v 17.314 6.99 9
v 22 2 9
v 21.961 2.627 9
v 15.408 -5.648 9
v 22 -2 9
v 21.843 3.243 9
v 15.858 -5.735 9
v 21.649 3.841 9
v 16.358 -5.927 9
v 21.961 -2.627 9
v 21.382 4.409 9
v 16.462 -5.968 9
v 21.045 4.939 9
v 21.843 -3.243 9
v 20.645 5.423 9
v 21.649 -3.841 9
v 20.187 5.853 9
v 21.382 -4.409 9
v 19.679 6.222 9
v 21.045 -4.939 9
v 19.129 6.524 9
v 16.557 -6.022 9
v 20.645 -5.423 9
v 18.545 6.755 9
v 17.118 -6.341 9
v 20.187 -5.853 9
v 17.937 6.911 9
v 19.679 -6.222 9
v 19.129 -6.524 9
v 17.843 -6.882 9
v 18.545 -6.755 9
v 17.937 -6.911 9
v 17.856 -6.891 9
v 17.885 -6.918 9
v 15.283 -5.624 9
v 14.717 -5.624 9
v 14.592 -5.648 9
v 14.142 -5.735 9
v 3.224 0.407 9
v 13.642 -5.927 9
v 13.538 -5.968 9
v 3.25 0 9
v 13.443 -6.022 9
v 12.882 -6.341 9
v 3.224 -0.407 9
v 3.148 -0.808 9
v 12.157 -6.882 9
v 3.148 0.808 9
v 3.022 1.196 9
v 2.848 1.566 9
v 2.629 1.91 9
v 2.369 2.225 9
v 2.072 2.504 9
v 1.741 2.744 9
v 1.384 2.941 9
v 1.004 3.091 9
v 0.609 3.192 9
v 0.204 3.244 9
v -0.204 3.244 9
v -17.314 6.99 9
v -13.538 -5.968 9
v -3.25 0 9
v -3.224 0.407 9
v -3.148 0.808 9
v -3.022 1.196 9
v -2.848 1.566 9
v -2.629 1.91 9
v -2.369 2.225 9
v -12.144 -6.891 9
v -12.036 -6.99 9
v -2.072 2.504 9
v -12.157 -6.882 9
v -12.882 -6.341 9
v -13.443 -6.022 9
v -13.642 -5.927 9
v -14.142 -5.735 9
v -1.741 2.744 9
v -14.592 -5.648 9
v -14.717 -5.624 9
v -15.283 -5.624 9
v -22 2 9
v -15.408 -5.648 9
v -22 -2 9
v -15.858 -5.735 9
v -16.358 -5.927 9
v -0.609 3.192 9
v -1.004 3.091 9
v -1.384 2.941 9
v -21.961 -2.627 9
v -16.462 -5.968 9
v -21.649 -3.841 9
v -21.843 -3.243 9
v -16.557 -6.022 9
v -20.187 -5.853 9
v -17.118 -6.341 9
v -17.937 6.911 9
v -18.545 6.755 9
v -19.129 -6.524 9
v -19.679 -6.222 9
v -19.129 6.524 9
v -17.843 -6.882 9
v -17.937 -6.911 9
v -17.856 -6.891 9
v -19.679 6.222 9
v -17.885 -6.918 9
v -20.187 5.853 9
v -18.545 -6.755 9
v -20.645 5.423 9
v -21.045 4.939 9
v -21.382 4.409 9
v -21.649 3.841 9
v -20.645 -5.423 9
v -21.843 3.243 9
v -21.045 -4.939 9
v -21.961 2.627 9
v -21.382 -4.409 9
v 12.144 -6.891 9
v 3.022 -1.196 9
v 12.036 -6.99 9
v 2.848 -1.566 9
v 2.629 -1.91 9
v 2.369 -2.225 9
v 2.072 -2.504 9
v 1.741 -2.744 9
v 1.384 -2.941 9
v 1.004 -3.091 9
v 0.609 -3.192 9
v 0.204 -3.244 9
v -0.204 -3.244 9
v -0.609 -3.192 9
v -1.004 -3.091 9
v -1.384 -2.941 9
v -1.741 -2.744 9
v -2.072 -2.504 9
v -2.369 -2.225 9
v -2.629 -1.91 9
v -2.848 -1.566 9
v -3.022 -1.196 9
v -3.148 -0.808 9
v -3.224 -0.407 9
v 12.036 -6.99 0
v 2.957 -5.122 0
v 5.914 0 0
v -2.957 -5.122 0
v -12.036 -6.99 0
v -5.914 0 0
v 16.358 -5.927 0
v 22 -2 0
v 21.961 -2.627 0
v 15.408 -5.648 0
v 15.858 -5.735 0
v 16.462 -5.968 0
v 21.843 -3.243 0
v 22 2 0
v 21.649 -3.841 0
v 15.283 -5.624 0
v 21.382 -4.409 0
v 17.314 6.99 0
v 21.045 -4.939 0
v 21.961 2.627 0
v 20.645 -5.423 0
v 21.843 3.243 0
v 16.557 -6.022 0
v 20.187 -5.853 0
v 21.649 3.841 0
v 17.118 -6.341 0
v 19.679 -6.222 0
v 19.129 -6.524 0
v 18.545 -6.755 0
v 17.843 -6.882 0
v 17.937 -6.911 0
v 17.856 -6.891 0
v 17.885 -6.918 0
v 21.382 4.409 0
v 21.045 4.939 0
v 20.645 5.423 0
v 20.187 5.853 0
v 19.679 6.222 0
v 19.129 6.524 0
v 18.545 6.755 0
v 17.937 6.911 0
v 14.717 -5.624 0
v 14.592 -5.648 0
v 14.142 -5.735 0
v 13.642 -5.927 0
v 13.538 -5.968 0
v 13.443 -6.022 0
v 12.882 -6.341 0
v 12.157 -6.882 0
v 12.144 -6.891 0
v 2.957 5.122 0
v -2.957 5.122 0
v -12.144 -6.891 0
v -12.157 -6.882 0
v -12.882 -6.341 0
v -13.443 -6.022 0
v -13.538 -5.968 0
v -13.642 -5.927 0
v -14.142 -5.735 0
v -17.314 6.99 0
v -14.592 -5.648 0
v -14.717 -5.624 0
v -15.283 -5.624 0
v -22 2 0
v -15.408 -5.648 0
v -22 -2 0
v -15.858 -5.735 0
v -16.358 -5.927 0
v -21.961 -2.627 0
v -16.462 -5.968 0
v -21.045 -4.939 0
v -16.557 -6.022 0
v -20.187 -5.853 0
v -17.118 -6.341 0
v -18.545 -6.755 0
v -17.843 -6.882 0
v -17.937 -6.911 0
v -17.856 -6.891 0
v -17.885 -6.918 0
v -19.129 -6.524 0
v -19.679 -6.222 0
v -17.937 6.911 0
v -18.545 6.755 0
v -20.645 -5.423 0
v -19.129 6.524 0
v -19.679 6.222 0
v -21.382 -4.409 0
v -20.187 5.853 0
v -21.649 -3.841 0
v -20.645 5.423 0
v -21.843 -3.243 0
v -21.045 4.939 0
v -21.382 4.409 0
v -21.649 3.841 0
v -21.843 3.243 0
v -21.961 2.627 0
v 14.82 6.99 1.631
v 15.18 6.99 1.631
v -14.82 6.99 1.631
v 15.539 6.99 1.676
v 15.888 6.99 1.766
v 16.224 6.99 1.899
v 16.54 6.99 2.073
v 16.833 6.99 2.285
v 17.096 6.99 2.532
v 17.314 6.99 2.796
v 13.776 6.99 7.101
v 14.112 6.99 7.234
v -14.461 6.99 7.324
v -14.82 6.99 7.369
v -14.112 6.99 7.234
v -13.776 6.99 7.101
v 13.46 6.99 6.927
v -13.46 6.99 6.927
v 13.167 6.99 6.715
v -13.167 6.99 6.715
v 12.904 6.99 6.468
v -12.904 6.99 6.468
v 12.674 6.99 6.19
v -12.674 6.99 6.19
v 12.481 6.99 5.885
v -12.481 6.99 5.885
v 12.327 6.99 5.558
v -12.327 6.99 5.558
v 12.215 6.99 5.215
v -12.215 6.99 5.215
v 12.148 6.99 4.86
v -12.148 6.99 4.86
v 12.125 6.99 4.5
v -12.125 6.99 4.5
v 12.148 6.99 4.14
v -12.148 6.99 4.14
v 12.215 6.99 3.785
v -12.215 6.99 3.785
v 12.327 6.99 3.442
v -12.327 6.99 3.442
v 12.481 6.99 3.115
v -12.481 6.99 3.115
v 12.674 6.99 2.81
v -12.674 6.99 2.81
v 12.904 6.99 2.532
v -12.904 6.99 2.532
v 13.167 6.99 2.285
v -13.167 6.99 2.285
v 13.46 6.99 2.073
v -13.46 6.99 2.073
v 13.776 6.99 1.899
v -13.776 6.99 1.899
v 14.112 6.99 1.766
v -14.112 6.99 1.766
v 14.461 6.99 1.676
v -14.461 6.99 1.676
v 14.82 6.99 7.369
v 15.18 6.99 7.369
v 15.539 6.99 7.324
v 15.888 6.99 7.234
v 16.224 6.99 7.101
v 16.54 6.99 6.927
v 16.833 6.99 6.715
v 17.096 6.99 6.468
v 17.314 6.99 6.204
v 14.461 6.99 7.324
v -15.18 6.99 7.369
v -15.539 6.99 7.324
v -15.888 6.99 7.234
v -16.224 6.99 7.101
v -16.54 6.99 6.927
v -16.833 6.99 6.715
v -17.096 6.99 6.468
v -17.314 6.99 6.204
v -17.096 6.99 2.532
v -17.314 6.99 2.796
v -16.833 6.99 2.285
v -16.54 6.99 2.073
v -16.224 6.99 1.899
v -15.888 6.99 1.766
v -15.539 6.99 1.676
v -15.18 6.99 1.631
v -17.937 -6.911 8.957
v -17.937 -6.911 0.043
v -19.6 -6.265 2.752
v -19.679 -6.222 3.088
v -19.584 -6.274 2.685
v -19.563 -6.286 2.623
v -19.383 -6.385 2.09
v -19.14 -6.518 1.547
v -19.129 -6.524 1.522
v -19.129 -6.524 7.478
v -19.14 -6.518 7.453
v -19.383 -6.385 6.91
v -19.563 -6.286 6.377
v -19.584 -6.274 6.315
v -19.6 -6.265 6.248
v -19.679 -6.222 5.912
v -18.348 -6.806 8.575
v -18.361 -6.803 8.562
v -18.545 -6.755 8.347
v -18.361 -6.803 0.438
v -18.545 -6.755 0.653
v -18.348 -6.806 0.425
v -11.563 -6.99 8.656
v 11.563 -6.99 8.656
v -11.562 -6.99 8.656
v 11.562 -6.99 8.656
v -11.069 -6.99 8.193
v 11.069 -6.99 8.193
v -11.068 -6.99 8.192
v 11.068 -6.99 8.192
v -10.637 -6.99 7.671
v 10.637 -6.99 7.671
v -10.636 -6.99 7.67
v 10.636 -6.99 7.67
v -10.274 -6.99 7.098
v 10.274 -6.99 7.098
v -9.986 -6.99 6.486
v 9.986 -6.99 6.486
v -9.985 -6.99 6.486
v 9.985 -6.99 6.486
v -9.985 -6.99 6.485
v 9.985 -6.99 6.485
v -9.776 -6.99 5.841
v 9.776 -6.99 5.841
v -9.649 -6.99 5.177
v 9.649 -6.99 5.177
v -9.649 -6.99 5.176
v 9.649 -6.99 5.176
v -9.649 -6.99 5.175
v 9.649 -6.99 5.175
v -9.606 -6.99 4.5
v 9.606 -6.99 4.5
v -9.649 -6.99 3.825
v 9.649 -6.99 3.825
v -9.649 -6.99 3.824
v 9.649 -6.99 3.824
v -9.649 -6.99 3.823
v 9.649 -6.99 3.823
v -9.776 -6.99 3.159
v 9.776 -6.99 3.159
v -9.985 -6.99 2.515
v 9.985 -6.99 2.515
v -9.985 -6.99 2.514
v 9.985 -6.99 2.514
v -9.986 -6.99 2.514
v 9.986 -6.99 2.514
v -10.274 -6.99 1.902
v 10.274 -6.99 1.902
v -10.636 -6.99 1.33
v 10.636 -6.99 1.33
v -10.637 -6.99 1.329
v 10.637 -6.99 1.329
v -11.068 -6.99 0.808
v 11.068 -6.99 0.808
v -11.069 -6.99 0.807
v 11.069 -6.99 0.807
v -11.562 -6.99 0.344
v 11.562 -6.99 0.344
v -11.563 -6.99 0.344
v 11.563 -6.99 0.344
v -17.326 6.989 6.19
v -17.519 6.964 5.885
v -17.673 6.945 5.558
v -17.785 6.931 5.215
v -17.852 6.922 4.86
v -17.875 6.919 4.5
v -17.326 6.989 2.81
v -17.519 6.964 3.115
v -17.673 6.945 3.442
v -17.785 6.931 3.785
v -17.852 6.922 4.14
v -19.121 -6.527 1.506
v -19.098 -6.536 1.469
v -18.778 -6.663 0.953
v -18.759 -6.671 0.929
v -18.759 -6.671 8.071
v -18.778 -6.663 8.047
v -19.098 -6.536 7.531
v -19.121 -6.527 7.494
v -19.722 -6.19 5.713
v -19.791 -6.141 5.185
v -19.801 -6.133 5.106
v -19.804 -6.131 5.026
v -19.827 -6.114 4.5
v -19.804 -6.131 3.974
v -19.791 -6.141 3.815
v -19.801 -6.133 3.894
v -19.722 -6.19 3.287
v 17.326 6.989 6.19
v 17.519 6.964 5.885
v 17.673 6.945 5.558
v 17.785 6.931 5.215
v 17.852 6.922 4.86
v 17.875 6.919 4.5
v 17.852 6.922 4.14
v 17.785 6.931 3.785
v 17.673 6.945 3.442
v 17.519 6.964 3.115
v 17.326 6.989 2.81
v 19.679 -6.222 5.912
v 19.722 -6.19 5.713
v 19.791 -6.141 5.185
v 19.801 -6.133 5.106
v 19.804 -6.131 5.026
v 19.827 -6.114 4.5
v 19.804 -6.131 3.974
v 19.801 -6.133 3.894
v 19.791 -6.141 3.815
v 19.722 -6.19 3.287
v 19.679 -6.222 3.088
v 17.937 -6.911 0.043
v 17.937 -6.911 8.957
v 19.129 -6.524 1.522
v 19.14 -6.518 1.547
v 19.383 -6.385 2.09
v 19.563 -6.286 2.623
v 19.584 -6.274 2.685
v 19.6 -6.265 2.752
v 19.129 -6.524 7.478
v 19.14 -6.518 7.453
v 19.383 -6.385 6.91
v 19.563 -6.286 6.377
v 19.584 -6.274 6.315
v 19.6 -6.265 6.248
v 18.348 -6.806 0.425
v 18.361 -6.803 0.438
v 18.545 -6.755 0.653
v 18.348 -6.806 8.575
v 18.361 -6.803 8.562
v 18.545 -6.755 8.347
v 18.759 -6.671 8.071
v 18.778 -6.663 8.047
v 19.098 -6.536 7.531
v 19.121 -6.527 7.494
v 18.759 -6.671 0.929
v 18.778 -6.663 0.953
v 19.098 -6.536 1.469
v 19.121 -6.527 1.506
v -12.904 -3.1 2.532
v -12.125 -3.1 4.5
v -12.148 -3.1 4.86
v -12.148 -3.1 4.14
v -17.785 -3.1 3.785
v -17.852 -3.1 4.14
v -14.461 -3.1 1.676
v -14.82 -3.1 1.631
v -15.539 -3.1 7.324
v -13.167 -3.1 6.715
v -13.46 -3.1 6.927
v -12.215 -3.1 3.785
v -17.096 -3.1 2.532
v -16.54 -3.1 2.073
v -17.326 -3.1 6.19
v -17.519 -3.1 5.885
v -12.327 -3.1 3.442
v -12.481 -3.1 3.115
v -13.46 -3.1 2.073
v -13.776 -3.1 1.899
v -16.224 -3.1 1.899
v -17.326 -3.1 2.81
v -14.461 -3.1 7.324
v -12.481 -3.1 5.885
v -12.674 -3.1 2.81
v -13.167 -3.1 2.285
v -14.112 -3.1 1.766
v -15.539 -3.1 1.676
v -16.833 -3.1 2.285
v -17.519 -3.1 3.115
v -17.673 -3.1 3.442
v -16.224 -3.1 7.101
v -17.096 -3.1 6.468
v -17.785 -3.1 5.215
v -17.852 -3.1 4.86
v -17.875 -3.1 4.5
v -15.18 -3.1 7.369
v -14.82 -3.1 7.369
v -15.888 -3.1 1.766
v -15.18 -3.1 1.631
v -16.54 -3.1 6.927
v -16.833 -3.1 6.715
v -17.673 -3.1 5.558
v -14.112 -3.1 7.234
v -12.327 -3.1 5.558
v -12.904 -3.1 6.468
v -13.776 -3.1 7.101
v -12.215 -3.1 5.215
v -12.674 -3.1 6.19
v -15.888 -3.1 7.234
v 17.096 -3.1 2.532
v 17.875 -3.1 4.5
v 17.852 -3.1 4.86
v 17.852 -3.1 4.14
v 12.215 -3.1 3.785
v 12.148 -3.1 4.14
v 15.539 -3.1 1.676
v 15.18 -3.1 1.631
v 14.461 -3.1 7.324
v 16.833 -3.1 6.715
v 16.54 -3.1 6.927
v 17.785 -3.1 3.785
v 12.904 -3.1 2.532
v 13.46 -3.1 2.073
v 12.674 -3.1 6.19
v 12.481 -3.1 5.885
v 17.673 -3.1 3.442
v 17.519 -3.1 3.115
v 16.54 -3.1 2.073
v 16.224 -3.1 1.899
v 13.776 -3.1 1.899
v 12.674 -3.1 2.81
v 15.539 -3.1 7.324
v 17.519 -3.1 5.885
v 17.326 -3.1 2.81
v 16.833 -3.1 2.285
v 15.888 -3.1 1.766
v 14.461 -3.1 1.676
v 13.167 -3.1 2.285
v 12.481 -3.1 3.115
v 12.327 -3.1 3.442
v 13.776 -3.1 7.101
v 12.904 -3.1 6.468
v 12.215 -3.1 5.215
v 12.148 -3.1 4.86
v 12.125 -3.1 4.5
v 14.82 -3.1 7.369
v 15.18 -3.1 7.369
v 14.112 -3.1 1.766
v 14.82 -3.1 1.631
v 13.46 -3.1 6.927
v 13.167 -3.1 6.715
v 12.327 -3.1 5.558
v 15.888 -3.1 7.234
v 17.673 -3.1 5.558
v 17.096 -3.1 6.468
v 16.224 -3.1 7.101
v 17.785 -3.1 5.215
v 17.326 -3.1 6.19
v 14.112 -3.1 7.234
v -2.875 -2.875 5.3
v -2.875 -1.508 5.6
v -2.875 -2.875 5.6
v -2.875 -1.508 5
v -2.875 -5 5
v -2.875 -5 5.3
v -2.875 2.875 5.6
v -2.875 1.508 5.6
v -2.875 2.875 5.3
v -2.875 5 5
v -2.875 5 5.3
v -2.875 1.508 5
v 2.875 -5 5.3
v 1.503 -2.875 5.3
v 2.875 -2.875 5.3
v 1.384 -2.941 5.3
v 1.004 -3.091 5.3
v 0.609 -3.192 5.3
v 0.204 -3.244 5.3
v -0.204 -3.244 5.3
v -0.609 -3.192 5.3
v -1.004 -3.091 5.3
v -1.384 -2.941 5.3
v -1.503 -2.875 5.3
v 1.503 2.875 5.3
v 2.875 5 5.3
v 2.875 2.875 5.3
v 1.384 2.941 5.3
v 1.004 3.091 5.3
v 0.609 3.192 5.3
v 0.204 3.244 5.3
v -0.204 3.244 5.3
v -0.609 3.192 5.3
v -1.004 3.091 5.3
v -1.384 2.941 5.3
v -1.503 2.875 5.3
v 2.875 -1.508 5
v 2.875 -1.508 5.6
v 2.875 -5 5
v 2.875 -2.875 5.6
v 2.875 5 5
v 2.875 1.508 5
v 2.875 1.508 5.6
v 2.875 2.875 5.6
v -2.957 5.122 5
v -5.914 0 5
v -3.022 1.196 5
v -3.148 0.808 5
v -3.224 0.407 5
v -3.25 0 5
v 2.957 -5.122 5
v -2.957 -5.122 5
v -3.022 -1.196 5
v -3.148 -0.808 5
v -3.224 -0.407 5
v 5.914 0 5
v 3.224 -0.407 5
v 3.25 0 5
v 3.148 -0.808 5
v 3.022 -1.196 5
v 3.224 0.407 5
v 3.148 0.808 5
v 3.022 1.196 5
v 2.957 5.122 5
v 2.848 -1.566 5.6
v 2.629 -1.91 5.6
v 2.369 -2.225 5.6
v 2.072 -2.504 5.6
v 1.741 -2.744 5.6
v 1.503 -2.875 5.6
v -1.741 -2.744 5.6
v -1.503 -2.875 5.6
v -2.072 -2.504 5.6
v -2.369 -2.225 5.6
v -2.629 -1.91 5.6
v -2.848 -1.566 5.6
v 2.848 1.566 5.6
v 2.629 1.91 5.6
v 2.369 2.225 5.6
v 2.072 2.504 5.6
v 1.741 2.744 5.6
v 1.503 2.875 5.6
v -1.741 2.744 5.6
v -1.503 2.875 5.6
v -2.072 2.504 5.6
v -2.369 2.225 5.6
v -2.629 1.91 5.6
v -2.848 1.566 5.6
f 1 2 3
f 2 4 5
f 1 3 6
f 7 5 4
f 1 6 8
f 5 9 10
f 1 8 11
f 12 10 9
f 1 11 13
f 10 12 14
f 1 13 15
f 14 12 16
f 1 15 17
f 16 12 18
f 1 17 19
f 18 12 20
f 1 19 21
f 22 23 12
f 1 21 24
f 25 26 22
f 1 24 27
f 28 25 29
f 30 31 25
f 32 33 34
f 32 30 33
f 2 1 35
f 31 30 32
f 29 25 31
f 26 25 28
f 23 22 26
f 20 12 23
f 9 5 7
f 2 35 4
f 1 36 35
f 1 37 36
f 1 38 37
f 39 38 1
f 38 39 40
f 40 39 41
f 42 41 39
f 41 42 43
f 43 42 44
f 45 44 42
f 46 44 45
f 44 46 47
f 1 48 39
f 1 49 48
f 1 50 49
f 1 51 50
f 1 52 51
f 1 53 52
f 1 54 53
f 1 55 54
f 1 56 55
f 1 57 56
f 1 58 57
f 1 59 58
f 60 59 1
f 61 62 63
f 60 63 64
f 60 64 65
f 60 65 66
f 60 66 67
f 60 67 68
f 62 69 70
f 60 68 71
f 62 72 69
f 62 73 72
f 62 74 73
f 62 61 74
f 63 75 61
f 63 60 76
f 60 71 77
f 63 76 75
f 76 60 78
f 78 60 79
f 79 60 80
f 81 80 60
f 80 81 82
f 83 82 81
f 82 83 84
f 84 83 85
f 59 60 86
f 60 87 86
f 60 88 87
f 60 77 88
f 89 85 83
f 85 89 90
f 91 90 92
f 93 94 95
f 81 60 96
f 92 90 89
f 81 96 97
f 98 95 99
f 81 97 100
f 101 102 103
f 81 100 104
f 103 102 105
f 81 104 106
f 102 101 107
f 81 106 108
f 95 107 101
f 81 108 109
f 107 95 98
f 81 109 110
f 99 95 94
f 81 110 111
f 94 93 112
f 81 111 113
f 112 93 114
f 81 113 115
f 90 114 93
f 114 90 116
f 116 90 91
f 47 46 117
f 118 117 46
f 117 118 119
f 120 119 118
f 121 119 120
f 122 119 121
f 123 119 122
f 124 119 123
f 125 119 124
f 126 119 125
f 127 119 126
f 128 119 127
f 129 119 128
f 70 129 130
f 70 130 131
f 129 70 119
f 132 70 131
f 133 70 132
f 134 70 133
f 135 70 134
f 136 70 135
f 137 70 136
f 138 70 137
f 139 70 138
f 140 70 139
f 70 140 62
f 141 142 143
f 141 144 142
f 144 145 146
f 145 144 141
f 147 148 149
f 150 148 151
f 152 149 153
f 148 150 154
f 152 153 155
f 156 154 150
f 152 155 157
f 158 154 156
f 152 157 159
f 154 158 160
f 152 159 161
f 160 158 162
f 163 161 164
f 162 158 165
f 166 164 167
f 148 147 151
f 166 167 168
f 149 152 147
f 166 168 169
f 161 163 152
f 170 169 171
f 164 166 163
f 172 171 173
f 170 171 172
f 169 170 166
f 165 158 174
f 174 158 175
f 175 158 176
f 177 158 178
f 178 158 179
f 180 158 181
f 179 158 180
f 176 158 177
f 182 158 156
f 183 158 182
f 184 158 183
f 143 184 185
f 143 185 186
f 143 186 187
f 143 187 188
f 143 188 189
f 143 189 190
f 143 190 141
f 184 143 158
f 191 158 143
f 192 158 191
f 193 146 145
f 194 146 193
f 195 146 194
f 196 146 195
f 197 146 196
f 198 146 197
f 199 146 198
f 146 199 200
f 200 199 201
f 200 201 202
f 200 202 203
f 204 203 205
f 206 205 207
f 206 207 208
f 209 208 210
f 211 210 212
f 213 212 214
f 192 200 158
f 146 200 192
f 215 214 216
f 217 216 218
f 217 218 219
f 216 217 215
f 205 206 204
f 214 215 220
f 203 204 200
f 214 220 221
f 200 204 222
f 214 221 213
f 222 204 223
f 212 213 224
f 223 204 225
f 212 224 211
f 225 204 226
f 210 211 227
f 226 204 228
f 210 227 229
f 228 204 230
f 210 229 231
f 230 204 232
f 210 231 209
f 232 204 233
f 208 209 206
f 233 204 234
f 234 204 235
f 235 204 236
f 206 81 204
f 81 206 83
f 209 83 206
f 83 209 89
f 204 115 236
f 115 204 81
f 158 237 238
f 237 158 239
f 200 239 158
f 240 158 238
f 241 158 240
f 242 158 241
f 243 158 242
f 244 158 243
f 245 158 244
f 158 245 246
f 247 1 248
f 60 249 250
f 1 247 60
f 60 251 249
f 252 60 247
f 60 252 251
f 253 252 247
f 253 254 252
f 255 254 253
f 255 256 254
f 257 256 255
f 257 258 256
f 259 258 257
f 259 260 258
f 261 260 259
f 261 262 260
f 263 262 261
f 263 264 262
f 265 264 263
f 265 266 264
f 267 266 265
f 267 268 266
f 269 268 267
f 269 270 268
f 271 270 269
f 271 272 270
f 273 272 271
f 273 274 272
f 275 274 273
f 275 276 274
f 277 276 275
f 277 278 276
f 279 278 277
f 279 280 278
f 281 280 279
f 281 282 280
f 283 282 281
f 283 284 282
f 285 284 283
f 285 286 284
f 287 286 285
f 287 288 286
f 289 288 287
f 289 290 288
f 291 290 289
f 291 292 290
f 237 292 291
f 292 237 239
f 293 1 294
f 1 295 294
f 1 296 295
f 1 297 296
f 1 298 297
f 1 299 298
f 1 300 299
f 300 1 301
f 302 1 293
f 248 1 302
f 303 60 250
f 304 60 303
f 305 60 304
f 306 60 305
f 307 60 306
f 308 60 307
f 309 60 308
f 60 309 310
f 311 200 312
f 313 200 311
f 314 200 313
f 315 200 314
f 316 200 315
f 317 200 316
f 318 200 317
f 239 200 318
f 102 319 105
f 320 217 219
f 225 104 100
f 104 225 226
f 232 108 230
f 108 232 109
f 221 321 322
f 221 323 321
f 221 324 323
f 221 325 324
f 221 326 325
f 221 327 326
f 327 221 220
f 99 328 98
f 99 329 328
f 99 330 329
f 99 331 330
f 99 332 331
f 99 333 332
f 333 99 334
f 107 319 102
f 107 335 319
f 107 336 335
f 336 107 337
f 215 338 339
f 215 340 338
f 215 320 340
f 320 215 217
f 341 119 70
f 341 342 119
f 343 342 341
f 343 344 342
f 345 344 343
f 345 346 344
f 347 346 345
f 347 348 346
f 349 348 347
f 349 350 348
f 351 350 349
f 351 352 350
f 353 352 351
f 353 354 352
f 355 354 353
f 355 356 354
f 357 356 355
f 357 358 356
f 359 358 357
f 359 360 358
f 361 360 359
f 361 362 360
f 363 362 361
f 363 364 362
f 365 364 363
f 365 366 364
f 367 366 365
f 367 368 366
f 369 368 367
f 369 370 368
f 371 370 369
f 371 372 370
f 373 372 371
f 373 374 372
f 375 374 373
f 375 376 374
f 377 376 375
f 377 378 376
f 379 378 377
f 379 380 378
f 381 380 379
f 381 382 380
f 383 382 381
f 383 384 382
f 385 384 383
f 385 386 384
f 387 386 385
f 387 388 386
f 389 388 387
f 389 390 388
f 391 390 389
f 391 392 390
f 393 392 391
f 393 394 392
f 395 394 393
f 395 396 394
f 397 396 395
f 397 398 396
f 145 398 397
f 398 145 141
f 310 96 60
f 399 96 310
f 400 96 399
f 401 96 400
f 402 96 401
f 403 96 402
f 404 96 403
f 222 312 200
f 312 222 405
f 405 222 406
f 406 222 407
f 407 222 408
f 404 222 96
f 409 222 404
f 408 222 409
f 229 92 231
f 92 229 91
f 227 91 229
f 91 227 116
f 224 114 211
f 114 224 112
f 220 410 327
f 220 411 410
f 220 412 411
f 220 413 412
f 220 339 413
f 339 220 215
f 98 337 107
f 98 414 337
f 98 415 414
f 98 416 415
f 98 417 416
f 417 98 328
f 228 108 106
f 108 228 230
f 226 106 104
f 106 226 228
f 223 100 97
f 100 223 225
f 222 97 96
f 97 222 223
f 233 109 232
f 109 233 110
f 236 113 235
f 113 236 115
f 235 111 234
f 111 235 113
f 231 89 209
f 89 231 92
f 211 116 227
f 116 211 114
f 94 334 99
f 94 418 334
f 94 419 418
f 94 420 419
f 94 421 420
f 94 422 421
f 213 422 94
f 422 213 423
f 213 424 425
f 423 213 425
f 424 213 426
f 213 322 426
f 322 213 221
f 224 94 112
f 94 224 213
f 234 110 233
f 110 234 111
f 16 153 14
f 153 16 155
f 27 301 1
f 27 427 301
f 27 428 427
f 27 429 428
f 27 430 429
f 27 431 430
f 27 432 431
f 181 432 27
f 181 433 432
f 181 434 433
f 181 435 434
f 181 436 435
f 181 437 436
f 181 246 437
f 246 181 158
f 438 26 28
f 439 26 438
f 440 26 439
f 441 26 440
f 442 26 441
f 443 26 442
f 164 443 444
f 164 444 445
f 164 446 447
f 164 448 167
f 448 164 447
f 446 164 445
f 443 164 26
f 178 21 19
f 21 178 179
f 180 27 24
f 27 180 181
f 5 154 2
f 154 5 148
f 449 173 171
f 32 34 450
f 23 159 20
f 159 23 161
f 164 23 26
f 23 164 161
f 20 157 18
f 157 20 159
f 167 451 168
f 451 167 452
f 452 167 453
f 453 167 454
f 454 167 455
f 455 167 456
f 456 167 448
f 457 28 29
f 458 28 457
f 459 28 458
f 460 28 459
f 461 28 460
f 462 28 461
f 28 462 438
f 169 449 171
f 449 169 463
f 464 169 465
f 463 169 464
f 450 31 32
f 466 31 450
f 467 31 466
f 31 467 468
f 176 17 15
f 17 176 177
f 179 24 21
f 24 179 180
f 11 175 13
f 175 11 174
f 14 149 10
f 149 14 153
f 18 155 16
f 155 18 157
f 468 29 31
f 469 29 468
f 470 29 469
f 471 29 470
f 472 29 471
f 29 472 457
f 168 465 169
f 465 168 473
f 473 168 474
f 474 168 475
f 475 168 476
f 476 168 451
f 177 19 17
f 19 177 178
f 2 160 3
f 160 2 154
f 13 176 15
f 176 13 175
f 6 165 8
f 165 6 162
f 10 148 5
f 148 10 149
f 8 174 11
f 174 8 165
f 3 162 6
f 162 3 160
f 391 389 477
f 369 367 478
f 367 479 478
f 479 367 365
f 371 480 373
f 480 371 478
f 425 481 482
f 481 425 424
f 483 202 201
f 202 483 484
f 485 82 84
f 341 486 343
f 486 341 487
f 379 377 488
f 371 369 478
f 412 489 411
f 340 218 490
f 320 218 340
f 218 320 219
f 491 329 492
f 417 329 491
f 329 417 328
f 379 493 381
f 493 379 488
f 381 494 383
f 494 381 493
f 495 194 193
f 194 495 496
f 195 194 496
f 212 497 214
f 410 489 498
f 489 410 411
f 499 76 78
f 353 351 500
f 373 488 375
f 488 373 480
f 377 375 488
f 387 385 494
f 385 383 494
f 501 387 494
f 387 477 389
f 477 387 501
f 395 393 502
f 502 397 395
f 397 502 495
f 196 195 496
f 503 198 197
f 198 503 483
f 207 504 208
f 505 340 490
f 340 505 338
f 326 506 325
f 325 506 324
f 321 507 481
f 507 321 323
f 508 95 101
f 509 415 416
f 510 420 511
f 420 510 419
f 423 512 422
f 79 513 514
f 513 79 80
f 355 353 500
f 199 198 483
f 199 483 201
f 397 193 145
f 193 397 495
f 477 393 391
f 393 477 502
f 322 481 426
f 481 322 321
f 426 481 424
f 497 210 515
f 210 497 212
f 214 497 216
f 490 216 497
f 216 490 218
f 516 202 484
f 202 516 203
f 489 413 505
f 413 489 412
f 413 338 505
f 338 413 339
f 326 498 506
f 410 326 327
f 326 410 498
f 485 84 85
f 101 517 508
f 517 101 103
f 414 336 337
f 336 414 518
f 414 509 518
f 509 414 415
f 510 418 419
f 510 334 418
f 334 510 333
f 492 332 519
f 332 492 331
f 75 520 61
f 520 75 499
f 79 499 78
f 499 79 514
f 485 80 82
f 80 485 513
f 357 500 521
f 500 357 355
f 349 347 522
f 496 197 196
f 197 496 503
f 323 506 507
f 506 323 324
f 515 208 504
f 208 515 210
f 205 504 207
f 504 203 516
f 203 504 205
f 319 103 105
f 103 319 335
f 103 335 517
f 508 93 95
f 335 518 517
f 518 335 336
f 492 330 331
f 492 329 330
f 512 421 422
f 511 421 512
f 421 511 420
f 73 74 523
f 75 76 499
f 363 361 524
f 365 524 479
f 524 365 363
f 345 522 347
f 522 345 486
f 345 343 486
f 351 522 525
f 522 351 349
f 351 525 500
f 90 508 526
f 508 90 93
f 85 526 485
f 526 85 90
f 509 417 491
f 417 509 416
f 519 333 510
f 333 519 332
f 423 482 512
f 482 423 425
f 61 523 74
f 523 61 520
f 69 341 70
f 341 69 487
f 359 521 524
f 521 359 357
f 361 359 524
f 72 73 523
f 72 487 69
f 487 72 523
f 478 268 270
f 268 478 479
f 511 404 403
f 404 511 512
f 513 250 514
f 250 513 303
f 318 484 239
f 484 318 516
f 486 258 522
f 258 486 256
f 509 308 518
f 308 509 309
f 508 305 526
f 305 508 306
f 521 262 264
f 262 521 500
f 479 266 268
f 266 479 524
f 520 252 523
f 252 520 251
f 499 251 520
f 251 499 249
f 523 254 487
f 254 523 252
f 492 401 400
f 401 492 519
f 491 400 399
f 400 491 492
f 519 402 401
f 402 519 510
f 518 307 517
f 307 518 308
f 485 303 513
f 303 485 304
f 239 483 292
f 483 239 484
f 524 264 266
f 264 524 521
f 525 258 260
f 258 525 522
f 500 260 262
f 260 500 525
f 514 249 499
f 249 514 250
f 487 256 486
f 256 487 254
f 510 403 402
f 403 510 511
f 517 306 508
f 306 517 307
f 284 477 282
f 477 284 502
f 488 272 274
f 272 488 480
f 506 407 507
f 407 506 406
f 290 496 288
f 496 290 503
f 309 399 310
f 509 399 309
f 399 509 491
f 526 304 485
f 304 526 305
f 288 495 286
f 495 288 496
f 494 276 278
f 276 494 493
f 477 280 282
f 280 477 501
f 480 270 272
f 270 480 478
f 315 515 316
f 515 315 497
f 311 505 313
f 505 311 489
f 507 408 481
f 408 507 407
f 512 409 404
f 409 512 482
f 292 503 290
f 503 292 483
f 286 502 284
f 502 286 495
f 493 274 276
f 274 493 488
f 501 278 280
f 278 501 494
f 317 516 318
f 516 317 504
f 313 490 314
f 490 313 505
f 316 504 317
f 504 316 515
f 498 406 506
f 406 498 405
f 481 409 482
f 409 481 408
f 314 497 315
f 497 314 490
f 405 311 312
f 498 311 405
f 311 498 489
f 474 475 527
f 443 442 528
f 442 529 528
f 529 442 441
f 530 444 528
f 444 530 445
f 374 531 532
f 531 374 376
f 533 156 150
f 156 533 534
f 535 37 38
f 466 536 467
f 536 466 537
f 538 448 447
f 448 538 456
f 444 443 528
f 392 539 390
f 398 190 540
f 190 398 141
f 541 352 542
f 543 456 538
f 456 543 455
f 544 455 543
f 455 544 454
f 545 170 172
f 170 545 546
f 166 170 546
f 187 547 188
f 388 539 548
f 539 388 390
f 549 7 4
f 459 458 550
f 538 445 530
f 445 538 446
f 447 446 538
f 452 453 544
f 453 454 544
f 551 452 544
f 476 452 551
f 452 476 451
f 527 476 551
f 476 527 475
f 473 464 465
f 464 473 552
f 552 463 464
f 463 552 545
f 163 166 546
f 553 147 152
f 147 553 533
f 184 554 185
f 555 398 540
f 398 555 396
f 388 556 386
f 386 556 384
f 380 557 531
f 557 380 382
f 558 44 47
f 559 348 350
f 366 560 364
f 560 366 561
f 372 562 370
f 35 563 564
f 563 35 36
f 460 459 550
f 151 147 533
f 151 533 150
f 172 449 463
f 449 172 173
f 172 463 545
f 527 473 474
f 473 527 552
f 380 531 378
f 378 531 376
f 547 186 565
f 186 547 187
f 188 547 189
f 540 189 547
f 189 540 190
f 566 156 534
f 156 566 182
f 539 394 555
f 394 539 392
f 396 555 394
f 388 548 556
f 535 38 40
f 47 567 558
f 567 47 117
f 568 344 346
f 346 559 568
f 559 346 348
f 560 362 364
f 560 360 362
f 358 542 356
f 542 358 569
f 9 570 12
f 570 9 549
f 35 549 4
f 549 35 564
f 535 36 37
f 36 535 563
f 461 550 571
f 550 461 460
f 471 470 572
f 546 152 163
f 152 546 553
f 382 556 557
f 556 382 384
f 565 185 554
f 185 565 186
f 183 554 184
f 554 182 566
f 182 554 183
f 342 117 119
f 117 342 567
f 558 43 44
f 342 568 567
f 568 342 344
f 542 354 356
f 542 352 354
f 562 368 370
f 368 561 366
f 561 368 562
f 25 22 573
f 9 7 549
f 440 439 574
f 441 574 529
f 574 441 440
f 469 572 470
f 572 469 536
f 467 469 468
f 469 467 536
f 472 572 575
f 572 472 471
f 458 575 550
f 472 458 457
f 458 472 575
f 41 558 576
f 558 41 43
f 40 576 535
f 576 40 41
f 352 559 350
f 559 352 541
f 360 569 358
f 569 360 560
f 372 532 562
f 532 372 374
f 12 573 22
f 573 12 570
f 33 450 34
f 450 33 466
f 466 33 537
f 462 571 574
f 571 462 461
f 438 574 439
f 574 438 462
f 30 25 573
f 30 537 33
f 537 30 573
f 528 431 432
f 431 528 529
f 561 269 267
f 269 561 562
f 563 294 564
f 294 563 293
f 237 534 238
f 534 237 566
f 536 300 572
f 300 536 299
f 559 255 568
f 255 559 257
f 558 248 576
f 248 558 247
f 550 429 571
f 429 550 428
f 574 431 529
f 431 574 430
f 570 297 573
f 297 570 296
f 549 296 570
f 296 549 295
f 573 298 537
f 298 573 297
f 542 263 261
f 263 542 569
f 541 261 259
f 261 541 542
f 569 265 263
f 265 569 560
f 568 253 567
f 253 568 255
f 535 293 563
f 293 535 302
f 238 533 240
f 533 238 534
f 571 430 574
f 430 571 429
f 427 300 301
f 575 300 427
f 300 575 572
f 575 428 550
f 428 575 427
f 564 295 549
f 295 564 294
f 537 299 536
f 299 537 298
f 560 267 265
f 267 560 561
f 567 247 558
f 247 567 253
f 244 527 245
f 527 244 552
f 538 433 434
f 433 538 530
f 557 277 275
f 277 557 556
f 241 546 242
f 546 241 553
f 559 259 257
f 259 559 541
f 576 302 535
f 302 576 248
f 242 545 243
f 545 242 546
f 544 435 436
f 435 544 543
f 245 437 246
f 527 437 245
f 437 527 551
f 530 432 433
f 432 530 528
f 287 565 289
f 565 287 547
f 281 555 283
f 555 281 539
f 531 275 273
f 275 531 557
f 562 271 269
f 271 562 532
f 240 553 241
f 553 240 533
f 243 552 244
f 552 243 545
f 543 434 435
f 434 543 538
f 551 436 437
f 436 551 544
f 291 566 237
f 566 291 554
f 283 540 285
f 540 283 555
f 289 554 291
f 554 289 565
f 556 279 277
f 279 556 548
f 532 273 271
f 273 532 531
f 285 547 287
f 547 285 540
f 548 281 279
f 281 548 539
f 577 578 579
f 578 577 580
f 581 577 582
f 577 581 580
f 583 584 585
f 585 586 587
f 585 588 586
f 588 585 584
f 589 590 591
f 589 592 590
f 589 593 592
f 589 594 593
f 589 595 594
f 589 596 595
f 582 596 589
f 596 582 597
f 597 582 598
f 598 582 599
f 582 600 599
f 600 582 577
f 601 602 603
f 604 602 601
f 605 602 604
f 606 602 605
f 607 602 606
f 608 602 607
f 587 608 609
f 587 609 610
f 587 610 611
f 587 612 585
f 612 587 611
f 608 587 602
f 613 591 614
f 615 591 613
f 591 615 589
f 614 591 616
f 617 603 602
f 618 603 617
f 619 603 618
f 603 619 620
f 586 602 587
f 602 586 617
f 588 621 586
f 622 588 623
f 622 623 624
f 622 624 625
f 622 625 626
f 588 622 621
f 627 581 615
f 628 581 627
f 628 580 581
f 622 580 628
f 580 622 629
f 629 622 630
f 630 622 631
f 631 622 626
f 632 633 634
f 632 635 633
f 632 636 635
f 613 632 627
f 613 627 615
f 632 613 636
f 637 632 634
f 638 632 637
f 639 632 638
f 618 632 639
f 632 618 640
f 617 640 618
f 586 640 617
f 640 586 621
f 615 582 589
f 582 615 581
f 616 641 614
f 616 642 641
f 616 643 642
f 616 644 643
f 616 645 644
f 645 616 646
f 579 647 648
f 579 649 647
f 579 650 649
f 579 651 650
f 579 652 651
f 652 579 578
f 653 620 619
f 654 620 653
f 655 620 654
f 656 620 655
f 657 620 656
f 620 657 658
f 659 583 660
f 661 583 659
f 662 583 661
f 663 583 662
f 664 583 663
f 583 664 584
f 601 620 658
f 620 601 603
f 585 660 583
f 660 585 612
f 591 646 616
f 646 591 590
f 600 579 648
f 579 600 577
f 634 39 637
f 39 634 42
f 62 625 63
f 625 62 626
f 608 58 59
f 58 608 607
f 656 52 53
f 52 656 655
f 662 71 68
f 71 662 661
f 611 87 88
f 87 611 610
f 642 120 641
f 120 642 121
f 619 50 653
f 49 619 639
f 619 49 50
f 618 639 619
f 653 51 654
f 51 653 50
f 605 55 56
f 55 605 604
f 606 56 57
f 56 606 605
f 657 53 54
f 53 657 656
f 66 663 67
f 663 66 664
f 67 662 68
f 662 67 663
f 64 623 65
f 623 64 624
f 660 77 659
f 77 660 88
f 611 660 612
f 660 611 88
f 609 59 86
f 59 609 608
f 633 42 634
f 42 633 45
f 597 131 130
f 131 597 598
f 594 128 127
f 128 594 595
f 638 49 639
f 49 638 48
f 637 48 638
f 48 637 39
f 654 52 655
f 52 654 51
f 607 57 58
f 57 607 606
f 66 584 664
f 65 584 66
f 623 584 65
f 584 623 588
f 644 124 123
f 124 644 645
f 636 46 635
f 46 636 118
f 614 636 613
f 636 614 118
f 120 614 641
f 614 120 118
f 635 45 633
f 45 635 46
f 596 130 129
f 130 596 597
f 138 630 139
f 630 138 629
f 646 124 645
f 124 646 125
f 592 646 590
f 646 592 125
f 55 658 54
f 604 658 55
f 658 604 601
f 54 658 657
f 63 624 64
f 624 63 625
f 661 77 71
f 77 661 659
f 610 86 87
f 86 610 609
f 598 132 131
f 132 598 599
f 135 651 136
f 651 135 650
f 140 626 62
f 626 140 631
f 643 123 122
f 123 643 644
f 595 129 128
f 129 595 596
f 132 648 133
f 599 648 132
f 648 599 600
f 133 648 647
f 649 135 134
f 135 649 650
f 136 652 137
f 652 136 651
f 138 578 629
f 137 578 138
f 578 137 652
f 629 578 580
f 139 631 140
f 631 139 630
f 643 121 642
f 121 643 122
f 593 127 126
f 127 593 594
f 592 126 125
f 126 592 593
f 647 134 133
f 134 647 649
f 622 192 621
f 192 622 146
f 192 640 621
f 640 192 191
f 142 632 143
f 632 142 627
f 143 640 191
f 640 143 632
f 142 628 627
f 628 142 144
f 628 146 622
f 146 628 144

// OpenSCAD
$fn = 50;


difference() {
	union() {
		cylinder(h = 9, r = 7.0000000000);
		translate(v = [-7.5000000000, 0.0000000000, 0]) {
			hull() {
				translate(v = [-9.5000000000, 2.0000000000, 0]) {
					cylinder(h = 9, r = 5);
				}
				translate(v = [9.5000000000, 2.0000000000, 0]) {
					cylinder(h = 9, r = 5);
				}
				translate(v = [-9.5000000000, -2.0000000000, 0]) {
					cylinder(h = 9, r = 5);
				}
				translate(v = [9.5000000000, -2.0000000000, 0]) {
					cylinder(h = 9, r = 5);
				}
			}
		}
		translate(v = [7.5000000000, 0.0000000000, 0]) {
			hull() {
				translate(v = [-9.5000000000, 2.0000000000, 0]) {
					cylinder(h = 9, r = 5);
				}
				translate(v = [9.5000000000, 2.0000000000, 0]) {
					cylinder(h = 9, r = 5);
				}
				translate(v = [-9.5000000000, -2.0000000000, 0]) {
					cylinder(h = 9, r = 5);
				}
				translate(v = [9.5000000000, -2.0000000000, 0]) {
					cylinder(h = 9, r = 5);
				}
			}
		}
	}
	union() {
		translate(v = [-15.0000000000, -7.0000000000, 4.5000000000]) {
			rotate(a = [90, 0, 0]) {
				difference() {
					union() {
						#translate(v = [0, 0, -14.0000000000]) {
							cylinder(h = 14, r = 2.6000000000);
						}
						#translate(v = [0, 0, -3.9000000000]) {
							cylinder(h = 3.9000000000, r1 = 2.8750000000, r2 = 5.4000000000);
						}
						#translate(v = [0, 0, -14.0000000000]) {
							cylinder(h = 14, r = 2.8750000000);
						}
						#translate(v = [0, 0, -14.0000000000]) {
							cylinder(h = 14, r = 2.6000000000);
						}
					}
					union();
				}
			}
		}
		translate(v = [15.0000000000, -7.0000000000, 4.5000000000]) {
			rotate(a = [90, 0, 0]) {
				difference() {
					union() {
						#translate(v = [0, 0, -14.0000000000]) {
							cylinder(h = 14, r = 2.6000000000);
						}
						#translate(v = [0, 0, -3.9000000000]) {
							cylinder(h = 3.9000000000, r1 = 2.8750000000, r2 = 5.4000000000);
						}
						#translate(v = [0, 0, -14.0000000000]) {
							cylinder(h = 14, r = 2.8750000000);
						}
						#translate(v = [0, 0, -14.0000000000]) {
							cylinder(h = 14, r = 2.6000000000);
						}
					}
					union();
				}
			}
		}
		translate(v = [0.0000000000, 0.0000000000, 0]) {
			rotate(a = [0, 0, 0]) {
				difference() {
					union() {
						#translate(v = [-2.8750000000, -5.0000000000, -0.3000000000]) {
							cube(size = [5.7500000000, 10, 0.3000000000]);
						}
						#translate(v = [-2.8750000000, -2.8750000000, -0.6000000000]) {
							cube(size = [5.7500000000, 5.7500000000, 0.3000000000]);
						}
						#translate(v = [-2.8750000000, -5.0000000000, 5]) {
							cube(size = [5.7500000000, 10, 0.3000000000]);
						}
						#translate(v = [-2.8750000000, -2.8750000000, 5.3000000000]) {
							cube(size = [5.7500000000, 5.7500000000, 0.3000000000]);
						}
						#translate(v = [0, 0, -100.0000000000]) {
							cylinder(h = 200, r = 3.2500000000);
						}
						#linear_extrude(height = 5) {
							polygon(points = [[5.9142500000, 0.0000000000], [2.9571250000, 5.1218907443], [-2.9571250000, 5.1218907443], [-5.9142500000, 0.0000000000], [-2.9571250000, -5.1218907443], [2.9571250000, -5.1218907443]]);
						}
						#translate(v = [-2.8750000000, -5.0000000000, -0.3000000000]) {
							cube(size = [5.7500000000, 10, 0.3000000000]);
						}
						#translate(v = [-2.8750000000, -2.8750000000, -0.6000000000]) {
							cube(size = [5.7500000000, 5.7500000000, 0.3000000000]);
						}
						#translate(v = [-2.8750000000, -5.0000000000, 5]) {
							cube(size = [5.7500000000, 10, 0.3000000000]);
						}
						#translate(v = [-2.8750000000, -2.8750000000, 5.3000000000]) {
							cube(size = [5.7500000000, 5.7500000000, 0.3000000000]);
						}
						#translate(v = [0, 0, -100.0000000000]) {
							cylinder(h = 200, r = 3.2500000000);
						}
						#translate(v = [-2.8750000000, -5.0000000000, -0.3000000000]) {
							cube(size = [5.7500000000, 10, 0.3000000000]);
						}
						#translate(v = [-2.8750000000, -2.8750000000, -0.6000000000]) {
							cube(size = [5.7500000000, 5.7500000000, 0.3000000000]);
						}
						#translate(v = [-2.8750000000, -5.0000000000, 5]) {
							cube(size = [5.7500000000, 10, 0.3000000000]);
						}
						#translate(v = [-2.8750000000, -2.8750000000, 5.3000000000]) {
							cube(size = [5.7500000000, 5.7500000000, 0.3000000000]);
						}
						#translate(v = [0, 0, -100.0000000000]) {
							cylinder(h = 200, r = 3.2500000000);
						}
					}
					union();
				}
			}
		}
		translate(v = [0, 0, -100]) {
			cylinder(h = 200, r = 3.2500000000);
		}
		translate(v = [0, 0, -100]) {
			cylinder(h = 200, r = 1.8000000000);
		}
	}
}
